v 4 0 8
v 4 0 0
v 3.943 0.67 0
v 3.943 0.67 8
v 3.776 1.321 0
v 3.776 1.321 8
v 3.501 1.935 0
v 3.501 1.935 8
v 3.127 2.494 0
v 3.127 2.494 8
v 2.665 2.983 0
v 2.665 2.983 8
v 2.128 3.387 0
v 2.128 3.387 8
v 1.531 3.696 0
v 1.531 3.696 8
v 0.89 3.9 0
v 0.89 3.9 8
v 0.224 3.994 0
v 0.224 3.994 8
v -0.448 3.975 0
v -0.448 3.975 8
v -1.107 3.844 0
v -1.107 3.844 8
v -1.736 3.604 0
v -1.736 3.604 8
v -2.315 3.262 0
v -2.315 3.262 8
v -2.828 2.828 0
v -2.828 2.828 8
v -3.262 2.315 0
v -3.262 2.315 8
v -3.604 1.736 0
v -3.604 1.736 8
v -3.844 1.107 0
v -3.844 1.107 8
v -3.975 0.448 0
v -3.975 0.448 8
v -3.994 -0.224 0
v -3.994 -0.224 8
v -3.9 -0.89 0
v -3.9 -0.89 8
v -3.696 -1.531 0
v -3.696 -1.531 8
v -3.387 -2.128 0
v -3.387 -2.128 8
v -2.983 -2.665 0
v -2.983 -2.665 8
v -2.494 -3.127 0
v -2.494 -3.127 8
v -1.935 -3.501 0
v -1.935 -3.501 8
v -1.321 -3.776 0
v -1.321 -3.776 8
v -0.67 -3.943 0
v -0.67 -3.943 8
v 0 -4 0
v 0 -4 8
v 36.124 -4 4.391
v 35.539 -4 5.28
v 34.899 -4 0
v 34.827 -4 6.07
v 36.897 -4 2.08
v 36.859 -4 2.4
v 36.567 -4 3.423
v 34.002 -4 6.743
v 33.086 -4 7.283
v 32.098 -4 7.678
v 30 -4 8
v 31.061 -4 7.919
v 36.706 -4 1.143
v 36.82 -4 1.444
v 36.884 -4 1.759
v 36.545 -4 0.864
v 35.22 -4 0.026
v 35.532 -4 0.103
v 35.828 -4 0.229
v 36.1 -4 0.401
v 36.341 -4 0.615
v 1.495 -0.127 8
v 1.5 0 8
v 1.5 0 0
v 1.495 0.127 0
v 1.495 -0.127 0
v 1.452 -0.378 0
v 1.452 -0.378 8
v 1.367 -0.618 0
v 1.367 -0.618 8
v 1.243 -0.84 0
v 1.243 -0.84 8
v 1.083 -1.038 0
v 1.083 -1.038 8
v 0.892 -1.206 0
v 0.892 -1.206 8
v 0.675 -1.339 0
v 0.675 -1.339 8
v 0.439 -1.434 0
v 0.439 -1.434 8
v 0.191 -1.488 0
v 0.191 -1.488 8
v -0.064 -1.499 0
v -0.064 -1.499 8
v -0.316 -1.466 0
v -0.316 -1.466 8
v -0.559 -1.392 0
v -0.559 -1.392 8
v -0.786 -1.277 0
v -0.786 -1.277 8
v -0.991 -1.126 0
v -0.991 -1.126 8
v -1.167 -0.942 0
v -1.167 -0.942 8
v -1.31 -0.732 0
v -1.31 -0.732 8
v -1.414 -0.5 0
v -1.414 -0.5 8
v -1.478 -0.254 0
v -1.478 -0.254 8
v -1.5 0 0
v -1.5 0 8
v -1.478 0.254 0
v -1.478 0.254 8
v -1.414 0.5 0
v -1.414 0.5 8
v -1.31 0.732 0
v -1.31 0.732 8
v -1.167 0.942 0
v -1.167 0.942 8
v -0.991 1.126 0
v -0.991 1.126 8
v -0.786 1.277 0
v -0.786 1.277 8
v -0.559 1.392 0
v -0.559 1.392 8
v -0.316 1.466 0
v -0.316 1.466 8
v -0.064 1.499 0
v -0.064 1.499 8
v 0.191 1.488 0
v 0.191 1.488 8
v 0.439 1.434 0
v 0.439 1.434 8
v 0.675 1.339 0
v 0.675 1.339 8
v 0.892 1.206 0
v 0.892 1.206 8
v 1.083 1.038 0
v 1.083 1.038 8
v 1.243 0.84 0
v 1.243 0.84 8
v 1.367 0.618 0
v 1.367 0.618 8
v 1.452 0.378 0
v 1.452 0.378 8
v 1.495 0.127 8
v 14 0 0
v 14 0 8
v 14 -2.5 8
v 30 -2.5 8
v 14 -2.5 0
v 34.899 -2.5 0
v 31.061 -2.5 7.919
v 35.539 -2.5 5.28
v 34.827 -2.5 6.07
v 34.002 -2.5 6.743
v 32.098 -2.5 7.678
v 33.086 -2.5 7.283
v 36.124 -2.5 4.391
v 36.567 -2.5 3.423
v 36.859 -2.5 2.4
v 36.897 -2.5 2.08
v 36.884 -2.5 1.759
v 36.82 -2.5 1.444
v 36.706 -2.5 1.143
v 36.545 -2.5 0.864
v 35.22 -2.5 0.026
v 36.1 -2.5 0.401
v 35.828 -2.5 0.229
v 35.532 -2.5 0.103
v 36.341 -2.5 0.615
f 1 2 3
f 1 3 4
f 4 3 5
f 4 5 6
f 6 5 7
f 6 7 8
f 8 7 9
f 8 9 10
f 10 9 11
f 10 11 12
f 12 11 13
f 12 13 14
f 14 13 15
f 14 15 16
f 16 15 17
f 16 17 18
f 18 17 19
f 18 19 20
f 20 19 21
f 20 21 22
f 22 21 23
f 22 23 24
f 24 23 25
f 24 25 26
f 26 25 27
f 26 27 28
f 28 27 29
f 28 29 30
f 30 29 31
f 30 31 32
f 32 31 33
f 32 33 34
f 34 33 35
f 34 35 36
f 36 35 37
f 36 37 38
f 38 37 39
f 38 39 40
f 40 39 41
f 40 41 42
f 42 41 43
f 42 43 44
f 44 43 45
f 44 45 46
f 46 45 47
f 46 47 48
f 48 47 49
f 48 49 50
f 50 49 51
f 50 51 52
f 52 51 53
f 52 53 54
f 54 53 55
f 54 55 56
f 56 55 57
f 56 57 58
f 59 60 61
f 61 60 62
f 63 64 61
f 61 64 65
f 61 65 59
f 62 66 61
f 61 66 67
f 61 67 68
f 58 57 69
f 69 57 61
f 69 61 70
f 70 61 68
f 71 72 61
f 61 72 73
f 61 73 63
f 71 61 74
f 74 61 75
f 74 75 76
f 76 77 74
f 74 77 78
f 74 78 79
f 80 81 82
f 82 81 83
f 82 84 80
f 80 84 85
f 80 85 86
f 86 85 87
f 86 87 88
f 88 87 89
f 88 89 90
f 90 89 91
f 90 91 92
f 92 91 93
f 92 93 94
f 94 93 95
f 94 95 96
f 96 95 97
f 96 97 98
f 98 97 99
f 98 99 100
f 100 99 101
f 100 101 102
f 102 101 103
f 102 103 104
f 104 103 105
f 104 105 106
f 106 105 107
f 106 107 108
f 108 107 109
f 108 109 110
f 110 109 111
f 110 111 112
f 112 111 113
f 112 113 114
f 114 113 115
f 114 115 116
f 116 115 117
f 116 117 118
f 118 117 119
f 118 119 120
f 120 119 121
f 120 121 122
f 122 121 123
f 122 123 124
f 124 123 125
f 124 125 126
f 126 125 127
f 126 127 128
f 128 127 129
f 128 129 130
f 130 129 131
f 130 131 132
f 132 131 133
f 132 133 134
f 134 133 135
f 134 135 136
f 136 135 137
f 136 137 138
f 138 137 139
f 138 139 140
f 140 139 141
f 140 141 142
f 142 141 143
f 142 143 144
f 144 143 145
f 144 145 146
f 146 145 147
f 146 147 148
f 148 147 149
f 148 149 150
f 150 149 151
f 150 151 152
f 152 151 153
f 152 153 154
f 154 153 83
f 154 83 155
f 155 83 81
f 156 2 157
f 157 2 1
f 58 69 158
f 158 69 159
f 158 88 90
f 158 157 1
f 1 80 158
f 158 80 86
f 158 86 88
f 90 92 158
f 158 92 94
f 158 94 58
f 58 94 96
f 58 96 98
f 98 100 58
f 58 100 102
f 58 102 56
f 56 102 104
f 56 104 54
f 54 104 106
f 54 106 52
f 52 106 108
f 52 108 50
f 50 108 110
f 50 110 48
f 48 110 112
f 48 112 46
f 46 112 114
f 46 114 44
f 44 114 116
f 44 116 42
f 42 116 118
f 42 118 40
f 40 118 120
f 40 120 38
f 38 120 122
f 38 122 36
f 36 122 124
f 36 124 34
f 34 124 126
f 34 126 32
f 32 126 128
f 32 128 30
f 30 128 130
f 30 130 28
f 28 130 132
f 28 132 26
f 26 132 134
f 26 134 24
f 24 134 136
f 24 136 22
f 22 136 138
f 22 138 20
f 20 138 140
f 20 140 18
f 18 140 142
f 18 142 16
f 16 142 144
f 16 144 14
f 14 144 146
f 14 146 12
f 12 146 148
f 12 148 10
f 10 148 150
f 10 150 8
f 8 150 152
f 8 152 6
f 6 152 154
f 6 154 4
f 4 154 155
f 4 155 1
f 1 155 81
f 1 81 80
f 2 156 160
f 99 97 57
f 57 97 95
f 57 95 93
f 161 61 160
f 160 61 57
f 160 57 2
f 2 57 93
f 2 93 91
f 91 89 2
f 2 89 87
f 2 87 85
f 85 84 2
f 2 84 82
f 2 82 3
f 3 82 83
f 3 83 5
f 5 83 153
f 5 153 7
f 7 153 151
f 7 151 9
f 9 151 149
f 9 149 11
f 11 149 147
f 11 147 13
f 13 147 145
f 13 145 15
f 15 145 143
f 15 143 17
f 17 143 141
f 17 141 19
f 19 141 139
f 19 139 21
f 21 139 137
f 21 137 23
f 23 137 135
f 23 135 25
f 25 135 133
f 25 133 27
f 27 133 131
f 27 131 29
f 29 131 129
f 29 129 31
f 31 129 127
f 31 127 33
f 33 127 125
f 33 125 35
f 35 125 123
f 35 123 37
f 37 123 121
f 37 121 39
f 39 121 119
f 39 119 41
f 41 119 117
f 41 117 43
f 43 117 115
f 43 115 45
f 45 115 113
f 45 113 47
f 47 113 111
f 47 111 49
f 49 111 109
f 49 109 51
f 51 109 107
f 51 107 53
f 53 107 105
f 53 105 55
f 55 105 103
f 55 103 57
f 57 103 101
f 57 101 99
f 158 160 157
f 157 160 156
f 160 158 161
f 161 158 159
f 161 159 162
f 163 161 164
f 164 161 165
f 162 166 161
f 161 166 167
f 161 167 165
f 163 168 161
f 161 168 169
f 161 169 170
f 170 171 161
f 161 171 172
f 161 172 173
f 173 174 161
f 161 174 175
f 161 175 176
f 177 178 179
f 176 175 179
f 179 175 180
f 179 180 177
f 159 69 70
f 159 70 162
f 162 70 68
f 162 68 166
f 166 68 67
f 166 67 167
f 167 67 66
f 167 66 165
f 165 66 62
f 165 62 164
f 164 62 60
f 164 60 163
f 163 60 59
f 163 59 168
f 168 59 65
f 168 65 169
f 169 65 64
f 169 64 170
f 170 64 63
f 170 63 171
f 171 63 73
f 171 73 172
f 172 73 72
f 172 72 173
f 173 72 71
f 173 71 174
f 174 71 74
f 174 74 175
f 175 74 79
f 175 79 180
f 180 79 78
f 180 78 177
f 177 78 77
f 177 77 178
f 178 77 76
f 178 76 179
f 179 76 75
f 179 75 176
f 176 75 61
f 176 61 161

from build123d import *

# Parameters (mm, degrees)
CROQUIS1_R              = 1.5
SALIENTE_EXTRUIR1_DEPTH = 8
CROQUIS2_W              = 23
CROQUIS2_H              = 8
CORTAR_EXTRUIR1_DEPTH   = 2.5
REDONDEO1_R             = 7
REDONDEO3_R             = 2


with BuildPart() as part:
    # Croquis1 → Saliente-Extruir1 (new body)
    with BuildSketch(Plane.XY):
        with BuildLine():
            Line((37, 0), (4, 0))
            ThreePointArc((4, 0), (-2.828427125, 2.828427125), (0, -4))
            Line((0, -4), (37, -4))
            Line((37, -4), (37, 0))
        make_face()
        Circle(CROQUIS1_R, mode=Mode.SUBTRACT)
    extrude(amount=SALIENTE_EXTRUIR1_DEPTH)

    # Croquis2 → Cortar-Extruir1 (cut)
    with BuildSketch(Plane(origin=(0, 0, 0), x_dir=(1, 0, 0), z_dir=(0, 1, 0))):
        with Locations((25.5, -4)):
            Rectangle(CROQUIS2_W, CROQUIS2_H)
    extrude(amount=-CORTAR_EXTRUIR1_DEPTH, mode=Mode.SUBTRACT)

    # Redondeo1
    redondeo1_edges = [part.edges().sort_by_distance(p)[0] for p in [
        (37, -3.25, 8),
    ]]
    fillet(redondeo1_edges, radius=REDONDEO1_R)

    # Redondeo3
    redondeo3_edges = [part.edges().sort_by_distance(p)[0] for p in [
        (37, -3.25, 0),
    ]]
    fillet(redondeo3_edges, radius=REDONDEO3_R)


solid = part.part
